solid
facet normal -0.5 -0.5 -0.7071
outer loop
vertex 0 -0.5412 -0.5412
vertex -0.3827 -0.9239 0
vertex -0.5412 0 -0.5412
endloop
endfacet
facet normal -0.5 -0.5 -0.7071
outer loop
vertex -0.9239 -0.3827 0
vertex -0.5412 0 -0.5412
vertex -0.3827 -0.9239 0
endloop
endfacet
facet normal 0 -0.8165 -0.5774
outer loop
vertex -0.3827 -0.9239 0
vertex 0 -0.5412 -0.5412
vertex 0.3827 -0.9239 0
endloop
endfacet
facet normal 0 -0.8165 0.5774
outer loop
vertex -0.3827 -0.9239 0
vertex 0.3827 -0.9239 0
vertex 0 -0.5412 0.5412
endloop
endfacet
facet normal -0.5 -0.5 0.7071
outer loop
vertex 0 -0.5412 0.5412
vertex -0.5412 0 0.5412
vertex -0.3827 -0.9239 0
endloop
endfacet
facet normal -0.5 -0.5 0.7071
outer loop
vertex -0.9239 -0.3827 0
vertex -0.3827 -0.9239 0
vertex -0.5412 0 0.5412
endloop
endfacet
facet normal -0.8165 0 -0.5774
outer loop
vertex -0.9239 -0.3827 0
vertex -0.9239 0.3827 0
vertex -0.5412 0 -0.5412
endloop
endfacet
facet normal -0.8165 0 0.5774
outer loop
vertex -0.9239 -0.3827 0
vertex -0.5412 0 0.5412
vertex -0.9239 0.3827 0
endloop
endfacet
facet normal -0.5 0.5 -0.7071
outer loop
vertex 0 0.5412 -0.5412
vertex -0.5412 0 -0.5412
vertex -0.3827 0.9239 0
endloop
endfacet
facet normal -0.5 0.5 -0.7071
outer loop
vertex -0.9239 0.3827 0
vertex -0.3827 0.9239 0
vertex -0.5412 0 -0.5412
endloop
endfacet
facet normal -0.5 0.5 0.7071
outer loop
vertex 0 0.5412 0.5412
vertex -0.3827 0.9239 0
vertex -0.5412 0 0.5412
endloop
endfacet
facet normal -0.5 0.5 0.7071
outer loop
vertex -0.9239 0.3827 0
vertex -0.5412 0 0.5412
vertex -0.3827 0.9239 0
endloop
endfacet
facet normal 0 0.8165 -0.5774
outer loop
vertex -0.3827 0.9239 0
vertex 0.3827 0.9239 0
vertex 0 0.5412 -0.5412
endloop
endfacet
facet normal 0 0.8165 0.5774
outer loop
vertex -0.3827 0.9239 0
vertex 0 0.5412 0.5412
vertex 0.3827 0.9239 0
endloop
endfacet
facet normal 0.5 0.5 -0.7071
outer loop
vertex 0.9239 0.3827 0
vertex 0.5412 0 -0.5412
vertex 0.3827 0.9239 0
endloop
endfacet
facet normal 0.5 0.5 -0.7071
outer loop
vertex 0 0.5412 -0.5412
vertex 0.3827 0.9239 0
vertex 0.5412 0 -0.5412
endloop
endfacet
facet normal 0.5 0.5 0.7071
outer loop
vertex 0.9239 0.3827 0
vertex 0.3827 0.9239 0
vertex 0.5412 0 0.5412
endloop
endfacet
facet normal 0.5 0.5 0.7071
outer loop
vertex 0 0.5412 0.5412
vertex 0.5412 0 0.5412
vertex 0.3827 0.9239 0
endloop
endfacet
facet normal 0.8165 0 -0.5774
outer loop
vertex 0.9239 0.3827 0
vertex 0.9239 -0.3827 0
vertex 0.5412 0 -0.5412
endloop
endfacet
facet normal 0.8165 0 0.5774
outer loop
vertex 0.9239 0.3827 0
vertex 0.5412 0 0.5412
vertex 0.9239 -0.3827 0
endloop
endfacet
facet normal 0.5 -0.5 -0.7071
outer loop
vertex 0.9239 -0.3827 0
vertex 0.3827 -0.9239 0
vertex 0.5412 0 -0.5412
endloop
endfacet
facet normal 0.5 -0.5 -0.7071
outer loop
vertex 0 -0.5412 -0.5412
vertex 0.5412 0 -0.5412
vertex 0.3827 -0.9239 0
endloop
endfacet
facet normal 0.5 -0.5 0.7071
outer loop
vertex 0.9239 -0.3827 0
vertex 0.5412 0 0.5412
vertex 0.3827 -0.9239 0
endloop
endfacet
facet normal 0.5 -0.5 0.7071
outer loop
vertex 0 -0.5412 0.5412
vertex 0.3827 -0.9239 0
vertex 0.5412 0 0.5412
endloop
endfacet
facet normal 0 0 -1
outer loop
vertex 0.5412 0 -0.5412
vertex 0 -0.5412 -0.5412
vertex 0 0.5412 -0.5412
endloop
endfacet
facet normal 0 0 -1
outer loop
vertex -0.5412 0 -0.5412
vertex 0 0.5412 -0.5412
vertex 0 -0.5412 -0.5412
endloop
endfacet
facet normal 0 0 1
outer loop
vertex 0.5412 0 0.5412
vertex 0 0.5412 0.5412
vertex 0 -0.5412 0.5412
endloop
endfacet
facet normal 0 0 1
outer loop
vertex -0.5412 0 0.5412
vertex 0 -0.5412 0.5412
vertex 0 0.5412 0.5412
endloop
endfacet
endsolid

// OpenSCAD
polyhedron( points = [[-0.382683432372, -0.923879532508421, -3.87688361422794e-16], [-0.92387953255997, -0.382683432247558, -3.87688361422794e-16], [-0.923879532456879, 0.382683432427321, -3.87688361422794e-16], [-0.382683432289035, 0.923879532473671, -3.87688361422794e-16], [0.382683432385848, 0.923879532404949, -3.87688361422794e-16], [0.923879532456498, 0.382683432261404, -3.87688361422794e-16], [0.923879532422141, -0.382683432413475, -3.87688361422794e-16], [0.382683432302882, -0.923879532508421, -3.87688361422794e-16], [-1.47201765704584e-11, -0.541196099822256, -0.541196099963804], [-0.541196100194099, 1.53894902548978e-10, -0.541196099768557], [3.38760178323428e-11, 0.541196100016259, -0.541196100032528], [0.541196100016253, -7.86924525216516e-11, -0.541196100032528], [-0.541196099822258, 5.81781512413418e-11, 0.541196099963805], [8.09996337576739e-11, -0.541196100194094, 0.541196099768558], [0.541196100016261, -3.90159370200915e-11, 0.541196100032529], [-5.79675886638939e-12, 0.541196100016259, 0.541196100032528]], faces = [[0, 1, 9, 8], [0, 8, 7], [0, 7, 13], [0, 13, 12, 1], [1, 2, 9], [1, 12, 2], [2, 3, 10, 9], [2, 12, 15, 3], [3, 4, 10], [3, 15, 4], [4, 5, 11, 10], [4, 15, 14, 5], [5, 6, 11], [5, 14, 6], [6, 7, 8, 11], [6, 14, 13, 7], [8, 9, 10, 11], [12, 13, 14, 15]]);
